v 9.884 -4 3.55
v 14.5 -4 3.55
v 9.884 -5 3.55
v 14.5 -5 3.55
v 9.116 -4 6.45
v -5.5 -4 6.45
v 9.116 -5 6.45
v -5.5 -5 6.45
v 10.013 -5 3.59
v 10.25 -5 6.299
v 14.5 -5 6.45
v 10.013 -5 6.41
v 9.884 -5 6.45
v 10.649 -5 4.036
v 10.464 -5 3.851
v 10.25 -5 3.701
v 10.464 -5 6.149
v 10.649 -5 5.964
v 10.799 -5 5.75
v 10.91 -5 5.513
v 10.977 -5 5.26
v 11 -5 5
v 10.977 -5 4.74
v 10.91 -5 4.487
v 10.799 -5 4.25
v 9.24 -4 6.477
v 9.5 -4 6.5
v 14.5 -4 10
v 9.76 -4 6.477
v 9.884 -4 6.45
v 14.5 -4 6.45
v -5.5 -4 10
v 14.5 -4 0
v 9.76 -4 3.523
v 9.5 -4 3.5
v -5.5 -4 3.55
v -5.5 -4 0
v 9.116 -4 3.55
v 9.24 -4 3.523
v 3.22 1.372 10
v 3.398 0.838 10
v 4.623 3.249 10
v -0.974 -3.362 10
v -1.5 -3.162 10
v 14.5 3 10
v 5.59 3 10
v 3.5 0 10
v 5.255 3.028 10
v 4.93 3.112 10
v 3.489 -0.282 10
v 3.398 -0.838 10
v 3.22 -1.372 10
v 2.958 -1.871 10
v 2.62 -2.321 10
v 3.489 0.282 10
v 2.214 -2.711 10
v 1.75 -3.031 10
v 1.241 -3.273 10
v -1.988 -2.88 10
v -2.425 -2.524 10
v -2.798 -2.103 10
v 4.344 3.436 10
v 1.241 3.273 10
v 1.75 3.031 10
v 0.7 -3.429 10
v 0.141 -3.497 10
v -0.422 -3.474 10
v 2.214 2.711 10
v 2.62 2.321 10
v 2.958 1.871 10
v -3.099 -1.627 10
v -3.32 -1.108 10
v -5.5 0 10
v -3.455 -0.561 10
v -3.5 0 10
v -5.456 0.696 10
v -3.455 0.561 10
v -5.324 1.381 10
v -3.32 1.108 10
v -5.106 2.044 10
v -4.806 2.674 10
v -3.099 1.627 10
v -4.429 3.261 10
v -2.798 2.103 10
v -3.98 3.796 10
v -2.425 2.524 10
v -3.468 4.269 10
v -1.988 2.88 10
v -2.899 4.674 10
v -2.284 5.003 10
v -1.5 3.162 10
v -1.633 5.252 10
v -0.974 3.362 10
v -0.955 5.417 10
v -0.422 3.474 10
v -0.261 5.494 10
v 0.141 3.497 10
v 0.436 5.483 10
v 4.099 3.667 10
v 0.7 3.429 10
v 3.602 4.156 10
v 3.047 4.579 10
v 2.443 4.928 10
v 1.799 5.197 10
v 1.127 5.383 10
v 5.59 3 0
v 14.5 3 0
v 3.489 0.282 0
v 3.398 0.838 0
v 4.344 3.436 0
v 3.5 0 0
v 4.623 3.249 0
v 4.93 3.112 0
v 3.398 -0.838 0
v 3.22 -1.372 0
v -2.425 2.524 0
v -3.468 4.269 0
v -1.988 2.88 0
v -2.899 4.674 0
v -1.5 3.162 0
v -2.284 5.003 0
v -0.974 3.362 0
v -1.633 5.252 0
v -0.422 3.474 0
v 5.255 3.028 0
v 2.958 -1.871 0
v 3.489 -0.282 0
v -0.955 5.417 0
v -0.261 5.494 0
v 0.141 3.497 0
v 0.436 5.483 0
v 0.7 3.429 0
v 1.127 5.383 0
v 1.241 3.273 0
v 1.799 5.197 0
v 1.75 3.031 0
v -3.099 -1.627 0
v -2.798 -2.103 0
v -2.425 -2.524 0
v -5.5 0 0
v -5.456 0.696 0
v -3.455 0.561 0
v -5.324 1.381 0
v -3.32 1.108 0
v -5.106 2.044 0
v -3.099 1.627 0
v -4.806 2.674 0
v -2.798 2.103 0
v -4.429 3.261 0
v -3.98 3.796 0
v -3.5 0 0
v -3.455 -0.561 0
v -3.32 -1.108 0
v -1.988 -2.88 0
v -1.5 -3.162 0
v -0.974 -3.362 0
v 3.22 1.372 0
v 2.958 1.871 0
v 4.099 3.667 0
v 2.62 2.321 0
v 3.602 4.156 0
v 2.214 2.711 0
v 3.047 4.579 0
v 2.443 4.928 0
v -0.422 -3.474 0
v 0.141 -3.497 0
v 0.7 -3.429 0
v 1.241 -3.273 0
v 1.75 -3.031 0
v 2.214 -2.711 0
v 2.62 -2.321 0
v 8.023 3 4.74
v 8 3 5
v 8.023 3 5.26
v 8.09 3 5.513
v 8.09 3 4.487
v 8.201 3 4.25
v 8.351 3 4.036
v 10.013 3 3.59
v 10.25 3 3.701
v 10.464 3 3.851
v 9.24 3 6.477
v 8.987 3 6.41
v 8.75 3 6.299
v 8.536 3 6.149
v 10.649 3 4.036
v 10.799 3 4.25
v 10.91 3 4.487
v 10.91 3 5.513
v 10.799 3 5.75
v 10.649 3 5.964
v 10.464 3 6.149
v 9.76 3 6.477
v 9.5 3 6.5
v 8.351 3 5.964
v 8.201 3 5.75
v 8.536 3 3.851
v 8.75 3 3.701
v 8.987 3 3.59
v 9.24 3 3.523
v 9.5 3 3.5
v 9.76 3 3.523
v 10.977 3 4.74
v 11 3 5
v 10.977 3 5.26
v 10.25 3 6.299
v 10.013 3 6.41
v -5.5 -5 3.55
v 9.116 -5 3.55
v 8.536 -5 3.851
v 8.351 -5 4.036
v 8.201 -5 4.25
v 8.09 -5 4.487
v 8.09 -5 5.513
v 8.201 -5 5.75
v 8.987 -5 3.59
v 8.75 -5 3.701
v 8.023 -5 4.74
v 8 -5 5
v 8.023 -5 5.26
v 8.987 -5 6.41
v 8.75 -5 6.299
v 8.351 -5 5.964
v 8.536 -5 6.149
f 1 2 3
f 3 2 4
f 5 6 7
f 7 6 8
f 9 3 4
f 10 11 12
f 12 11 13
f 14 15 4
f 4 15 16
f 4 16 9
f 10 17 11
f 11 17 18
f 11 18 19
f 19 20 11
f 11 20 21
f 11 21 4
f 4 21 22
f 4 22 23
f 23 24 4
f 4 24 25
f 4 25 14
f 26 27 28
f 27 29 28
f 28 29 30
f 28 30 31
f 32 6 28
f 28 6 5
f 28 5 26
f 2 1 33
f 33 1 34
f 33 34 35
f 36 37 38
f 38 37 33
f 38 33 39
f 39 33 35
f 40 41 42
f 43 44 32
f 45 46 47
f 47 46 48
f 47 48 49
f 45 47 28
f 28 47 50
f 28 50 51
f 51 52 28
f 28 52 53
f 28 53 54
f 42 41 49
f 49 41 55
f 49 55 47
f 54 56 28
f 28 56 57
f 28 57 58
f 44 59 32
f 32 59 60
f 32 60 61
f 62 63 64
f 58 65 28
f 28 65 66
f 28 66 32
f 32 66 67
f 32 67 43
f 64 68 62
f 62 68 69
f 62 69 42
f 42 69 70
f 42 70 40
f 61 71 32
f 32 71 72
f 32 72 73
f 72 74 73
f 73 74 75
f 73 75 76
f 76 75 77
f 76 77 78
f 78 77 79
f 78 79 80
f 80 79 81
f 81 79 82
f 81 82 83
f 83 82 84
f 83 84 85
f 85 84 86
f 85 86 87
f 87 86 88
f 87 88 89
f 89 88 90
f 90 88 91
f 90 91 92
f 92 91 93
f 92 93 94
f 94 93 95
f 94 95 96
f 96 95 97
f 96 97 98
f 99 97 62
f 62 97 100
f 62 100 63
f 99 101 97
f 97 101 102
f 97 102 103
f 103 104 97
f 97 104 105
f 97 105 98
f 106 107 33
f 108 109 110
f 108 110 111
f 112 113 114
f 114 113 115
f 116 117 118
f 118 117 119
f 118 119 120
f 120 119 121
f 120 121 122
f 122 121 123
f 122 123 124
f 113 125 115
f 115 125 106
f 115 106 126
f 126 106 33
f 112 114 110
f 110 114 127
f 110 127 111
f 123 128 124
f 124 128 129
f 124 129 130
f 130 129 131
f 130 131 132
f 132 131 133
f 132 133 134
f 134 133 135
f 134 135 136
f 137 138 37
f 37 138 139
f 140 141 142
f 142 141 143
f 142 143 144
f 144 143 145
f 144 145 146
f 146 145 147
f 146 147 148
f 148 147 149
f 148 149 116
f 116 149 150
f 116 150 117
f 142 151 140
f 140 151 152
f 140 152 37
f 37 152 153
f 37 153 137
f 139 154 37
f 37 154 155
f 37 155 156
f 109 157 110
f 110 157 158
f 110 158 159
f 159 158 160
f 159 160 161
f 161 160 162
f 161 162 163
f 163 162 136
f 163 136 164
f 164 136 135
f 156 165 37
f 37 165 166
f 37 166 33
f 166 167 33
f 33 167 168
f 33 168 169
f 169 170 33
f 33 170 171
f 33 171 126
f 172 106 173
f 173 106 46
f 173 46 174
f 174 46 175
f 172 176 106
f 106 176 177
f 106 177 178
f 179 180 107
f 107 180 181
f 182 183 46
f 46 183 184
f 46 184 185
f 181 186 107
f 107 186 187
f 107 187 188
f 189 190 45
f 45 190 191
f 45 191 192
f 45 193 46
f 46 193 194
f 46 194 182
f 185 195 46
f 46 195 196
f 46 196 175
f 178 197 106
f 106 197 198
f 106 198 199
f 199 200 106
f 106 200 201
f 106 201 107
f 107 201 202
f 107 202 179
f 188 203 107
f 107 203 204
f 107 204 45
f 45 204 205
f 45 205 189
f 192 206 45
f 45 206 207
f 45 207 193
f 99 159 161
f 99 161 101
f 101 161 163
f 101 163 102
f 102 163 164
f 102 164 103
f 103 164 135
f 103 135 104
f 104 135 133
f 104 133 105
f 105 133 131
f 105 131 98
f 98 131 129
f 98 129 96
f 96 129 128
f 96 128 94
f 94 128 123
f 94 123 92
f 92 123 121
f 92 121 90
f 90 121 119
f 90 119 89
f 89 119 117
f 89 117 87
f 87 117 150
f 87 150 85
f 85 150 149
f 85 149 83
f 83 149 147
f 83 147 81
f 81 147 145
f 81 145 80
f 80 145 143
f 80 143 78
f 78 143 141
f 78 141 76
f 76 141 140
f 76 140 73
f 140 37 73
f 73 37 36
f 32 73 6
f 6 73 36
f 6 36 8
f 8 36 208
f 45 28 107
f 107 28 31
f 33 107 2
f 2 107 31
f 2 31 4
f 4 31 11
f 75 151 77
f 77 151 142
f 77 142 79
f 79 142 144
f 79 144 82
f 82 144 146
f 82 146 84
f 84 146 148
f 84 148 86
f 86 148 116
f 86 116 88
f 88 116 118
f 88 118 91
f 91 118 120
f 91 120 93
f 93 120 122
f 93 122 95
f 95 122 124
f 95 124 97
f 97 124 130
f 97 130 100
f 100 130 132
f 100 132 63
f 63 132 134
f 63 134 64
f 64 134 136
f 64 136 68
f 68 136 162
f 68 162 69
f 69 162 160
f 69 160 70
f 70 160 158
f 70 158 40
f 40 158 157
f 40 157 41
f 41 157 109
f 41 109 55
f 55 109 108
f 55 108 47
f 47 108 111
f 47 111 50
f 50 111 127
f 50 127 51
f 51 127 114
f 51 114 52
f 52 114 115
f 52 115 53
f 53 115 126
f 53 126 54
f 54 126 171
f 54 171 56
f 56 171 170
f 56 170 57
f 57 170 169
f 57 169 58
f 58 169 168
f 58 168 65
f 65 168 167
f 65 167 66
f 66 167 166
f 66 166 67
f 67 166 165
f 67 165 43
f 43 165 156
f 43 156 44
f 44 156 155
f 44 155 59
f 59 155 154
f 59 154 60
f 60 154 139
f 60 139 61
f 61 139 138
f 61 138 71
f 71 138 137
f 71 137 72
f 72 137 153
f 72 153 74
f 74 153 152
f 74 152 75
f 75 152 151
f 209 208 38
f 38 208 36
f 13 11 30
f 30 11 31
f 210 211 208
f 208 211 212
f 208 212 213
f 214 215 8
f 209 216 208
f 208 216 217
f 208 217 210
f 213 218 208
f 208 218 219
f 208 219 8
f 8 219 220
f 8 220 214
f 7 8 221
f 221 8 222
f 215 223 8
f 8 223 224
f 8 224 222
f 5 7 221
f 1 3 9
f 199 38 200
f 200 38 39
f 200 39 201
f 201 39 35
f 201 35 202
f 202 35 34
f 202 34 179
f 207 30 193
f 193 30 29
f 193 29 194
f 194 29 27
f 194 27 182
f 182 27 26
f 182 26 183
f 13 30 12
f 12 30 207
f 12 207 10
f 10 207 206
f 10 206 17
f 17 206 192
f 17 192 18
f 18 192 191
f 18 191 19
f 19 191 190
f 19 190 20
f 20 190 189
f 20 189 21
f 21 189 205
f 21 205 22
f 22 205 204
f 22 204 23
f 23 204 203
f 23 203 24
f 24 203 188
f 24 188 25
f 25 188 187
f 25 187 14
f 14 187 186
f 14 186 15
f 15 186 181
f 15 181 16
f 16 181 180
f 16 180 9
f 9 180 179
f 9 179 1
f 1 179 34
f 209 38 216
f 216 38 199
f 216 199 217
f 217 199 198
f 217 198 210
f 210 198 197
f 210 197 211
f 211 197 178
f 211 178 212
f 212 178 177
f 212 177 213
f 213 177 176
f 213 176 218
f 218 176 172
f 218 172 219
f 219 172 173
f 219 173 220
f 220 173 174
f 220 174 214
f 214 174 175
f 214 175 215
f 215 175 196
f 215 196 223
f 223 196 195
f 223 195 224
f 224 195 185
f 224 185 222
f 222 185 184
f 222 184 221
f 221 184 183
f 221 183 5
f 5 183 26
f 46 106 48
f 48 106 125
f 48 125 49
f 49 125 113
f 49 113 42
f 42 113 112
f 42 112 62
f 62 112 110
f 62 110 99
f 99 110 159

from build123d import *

# Parameters (mm, degrees)
SKETCH1_R                       = 3.5
MAIN_DEPTH                      = 10
SKETCH3_W                       = 20
SKETCH3_H                       = 2.9
MAKERBEAMRECTANGULARGUIDE_DEPTH = 1
SKETCH4_R                       = 1.5
MAKERBEAMFIXHOLE_DEPTH          = 9
FILLET1_R                       = 2


with BuildPart() as part:
    # Sketch1 → Main (new body)
    with BuildSketch(Plane.XY):
        with BuildLine():
            Line((-5.5, 0), (-5.5, -4))
            Line((-5.5, -4), (14.5, -4))
            Line((14.5, -4), (14.5, 3))
            Line((14.5, 3), (4.609772229, 3))
            ThreePointArc((4.609772229, 3), (-1.564648961, 5.272748205), (-5.5, 0))
        make_face()
        Circle(SKETCH1_R, mode=Mode.SUBTRACT)
    extrude(amount=MAIN_DEPTH)

    # Sketch3 → MakerBeamRectangularGuide (add)
    with BuildSketch(Plane(origin=(0, -4, 0), x_dir=(-1, 0, 0), z_dir=(0, -1, 0))):
        with Locations((-4.5, -5)):
            Rectangle(SKETCH3_W, SKETCH3_H)
    extrude(amount=MAKERBEAMRECTANGULARGUIDE_DEPTH)

    # Sketch4 → MakerBeamFixHole (cut, through all)
    with BuildSketch(Plane(origin=(0, 3, 0), x_dir=(1, 0, 0), z_dir=(0, 1, 0))):
        with Locations((9.5, -5)):
            Circle(SKETCH4_R)
    extrude(amount=-MAKERBEAMFIXHOLE_DEPTH, mode=Mode.SUBTRACT)

    # Fillet1
    fillet1_edges = [part.edges().sort_by_distance(p)[0] for p in [
        (4.609772229, 3, 5),
    ]]
    fillet(fillet1_edges, radius=FILLET1_R)


solid = part.part
